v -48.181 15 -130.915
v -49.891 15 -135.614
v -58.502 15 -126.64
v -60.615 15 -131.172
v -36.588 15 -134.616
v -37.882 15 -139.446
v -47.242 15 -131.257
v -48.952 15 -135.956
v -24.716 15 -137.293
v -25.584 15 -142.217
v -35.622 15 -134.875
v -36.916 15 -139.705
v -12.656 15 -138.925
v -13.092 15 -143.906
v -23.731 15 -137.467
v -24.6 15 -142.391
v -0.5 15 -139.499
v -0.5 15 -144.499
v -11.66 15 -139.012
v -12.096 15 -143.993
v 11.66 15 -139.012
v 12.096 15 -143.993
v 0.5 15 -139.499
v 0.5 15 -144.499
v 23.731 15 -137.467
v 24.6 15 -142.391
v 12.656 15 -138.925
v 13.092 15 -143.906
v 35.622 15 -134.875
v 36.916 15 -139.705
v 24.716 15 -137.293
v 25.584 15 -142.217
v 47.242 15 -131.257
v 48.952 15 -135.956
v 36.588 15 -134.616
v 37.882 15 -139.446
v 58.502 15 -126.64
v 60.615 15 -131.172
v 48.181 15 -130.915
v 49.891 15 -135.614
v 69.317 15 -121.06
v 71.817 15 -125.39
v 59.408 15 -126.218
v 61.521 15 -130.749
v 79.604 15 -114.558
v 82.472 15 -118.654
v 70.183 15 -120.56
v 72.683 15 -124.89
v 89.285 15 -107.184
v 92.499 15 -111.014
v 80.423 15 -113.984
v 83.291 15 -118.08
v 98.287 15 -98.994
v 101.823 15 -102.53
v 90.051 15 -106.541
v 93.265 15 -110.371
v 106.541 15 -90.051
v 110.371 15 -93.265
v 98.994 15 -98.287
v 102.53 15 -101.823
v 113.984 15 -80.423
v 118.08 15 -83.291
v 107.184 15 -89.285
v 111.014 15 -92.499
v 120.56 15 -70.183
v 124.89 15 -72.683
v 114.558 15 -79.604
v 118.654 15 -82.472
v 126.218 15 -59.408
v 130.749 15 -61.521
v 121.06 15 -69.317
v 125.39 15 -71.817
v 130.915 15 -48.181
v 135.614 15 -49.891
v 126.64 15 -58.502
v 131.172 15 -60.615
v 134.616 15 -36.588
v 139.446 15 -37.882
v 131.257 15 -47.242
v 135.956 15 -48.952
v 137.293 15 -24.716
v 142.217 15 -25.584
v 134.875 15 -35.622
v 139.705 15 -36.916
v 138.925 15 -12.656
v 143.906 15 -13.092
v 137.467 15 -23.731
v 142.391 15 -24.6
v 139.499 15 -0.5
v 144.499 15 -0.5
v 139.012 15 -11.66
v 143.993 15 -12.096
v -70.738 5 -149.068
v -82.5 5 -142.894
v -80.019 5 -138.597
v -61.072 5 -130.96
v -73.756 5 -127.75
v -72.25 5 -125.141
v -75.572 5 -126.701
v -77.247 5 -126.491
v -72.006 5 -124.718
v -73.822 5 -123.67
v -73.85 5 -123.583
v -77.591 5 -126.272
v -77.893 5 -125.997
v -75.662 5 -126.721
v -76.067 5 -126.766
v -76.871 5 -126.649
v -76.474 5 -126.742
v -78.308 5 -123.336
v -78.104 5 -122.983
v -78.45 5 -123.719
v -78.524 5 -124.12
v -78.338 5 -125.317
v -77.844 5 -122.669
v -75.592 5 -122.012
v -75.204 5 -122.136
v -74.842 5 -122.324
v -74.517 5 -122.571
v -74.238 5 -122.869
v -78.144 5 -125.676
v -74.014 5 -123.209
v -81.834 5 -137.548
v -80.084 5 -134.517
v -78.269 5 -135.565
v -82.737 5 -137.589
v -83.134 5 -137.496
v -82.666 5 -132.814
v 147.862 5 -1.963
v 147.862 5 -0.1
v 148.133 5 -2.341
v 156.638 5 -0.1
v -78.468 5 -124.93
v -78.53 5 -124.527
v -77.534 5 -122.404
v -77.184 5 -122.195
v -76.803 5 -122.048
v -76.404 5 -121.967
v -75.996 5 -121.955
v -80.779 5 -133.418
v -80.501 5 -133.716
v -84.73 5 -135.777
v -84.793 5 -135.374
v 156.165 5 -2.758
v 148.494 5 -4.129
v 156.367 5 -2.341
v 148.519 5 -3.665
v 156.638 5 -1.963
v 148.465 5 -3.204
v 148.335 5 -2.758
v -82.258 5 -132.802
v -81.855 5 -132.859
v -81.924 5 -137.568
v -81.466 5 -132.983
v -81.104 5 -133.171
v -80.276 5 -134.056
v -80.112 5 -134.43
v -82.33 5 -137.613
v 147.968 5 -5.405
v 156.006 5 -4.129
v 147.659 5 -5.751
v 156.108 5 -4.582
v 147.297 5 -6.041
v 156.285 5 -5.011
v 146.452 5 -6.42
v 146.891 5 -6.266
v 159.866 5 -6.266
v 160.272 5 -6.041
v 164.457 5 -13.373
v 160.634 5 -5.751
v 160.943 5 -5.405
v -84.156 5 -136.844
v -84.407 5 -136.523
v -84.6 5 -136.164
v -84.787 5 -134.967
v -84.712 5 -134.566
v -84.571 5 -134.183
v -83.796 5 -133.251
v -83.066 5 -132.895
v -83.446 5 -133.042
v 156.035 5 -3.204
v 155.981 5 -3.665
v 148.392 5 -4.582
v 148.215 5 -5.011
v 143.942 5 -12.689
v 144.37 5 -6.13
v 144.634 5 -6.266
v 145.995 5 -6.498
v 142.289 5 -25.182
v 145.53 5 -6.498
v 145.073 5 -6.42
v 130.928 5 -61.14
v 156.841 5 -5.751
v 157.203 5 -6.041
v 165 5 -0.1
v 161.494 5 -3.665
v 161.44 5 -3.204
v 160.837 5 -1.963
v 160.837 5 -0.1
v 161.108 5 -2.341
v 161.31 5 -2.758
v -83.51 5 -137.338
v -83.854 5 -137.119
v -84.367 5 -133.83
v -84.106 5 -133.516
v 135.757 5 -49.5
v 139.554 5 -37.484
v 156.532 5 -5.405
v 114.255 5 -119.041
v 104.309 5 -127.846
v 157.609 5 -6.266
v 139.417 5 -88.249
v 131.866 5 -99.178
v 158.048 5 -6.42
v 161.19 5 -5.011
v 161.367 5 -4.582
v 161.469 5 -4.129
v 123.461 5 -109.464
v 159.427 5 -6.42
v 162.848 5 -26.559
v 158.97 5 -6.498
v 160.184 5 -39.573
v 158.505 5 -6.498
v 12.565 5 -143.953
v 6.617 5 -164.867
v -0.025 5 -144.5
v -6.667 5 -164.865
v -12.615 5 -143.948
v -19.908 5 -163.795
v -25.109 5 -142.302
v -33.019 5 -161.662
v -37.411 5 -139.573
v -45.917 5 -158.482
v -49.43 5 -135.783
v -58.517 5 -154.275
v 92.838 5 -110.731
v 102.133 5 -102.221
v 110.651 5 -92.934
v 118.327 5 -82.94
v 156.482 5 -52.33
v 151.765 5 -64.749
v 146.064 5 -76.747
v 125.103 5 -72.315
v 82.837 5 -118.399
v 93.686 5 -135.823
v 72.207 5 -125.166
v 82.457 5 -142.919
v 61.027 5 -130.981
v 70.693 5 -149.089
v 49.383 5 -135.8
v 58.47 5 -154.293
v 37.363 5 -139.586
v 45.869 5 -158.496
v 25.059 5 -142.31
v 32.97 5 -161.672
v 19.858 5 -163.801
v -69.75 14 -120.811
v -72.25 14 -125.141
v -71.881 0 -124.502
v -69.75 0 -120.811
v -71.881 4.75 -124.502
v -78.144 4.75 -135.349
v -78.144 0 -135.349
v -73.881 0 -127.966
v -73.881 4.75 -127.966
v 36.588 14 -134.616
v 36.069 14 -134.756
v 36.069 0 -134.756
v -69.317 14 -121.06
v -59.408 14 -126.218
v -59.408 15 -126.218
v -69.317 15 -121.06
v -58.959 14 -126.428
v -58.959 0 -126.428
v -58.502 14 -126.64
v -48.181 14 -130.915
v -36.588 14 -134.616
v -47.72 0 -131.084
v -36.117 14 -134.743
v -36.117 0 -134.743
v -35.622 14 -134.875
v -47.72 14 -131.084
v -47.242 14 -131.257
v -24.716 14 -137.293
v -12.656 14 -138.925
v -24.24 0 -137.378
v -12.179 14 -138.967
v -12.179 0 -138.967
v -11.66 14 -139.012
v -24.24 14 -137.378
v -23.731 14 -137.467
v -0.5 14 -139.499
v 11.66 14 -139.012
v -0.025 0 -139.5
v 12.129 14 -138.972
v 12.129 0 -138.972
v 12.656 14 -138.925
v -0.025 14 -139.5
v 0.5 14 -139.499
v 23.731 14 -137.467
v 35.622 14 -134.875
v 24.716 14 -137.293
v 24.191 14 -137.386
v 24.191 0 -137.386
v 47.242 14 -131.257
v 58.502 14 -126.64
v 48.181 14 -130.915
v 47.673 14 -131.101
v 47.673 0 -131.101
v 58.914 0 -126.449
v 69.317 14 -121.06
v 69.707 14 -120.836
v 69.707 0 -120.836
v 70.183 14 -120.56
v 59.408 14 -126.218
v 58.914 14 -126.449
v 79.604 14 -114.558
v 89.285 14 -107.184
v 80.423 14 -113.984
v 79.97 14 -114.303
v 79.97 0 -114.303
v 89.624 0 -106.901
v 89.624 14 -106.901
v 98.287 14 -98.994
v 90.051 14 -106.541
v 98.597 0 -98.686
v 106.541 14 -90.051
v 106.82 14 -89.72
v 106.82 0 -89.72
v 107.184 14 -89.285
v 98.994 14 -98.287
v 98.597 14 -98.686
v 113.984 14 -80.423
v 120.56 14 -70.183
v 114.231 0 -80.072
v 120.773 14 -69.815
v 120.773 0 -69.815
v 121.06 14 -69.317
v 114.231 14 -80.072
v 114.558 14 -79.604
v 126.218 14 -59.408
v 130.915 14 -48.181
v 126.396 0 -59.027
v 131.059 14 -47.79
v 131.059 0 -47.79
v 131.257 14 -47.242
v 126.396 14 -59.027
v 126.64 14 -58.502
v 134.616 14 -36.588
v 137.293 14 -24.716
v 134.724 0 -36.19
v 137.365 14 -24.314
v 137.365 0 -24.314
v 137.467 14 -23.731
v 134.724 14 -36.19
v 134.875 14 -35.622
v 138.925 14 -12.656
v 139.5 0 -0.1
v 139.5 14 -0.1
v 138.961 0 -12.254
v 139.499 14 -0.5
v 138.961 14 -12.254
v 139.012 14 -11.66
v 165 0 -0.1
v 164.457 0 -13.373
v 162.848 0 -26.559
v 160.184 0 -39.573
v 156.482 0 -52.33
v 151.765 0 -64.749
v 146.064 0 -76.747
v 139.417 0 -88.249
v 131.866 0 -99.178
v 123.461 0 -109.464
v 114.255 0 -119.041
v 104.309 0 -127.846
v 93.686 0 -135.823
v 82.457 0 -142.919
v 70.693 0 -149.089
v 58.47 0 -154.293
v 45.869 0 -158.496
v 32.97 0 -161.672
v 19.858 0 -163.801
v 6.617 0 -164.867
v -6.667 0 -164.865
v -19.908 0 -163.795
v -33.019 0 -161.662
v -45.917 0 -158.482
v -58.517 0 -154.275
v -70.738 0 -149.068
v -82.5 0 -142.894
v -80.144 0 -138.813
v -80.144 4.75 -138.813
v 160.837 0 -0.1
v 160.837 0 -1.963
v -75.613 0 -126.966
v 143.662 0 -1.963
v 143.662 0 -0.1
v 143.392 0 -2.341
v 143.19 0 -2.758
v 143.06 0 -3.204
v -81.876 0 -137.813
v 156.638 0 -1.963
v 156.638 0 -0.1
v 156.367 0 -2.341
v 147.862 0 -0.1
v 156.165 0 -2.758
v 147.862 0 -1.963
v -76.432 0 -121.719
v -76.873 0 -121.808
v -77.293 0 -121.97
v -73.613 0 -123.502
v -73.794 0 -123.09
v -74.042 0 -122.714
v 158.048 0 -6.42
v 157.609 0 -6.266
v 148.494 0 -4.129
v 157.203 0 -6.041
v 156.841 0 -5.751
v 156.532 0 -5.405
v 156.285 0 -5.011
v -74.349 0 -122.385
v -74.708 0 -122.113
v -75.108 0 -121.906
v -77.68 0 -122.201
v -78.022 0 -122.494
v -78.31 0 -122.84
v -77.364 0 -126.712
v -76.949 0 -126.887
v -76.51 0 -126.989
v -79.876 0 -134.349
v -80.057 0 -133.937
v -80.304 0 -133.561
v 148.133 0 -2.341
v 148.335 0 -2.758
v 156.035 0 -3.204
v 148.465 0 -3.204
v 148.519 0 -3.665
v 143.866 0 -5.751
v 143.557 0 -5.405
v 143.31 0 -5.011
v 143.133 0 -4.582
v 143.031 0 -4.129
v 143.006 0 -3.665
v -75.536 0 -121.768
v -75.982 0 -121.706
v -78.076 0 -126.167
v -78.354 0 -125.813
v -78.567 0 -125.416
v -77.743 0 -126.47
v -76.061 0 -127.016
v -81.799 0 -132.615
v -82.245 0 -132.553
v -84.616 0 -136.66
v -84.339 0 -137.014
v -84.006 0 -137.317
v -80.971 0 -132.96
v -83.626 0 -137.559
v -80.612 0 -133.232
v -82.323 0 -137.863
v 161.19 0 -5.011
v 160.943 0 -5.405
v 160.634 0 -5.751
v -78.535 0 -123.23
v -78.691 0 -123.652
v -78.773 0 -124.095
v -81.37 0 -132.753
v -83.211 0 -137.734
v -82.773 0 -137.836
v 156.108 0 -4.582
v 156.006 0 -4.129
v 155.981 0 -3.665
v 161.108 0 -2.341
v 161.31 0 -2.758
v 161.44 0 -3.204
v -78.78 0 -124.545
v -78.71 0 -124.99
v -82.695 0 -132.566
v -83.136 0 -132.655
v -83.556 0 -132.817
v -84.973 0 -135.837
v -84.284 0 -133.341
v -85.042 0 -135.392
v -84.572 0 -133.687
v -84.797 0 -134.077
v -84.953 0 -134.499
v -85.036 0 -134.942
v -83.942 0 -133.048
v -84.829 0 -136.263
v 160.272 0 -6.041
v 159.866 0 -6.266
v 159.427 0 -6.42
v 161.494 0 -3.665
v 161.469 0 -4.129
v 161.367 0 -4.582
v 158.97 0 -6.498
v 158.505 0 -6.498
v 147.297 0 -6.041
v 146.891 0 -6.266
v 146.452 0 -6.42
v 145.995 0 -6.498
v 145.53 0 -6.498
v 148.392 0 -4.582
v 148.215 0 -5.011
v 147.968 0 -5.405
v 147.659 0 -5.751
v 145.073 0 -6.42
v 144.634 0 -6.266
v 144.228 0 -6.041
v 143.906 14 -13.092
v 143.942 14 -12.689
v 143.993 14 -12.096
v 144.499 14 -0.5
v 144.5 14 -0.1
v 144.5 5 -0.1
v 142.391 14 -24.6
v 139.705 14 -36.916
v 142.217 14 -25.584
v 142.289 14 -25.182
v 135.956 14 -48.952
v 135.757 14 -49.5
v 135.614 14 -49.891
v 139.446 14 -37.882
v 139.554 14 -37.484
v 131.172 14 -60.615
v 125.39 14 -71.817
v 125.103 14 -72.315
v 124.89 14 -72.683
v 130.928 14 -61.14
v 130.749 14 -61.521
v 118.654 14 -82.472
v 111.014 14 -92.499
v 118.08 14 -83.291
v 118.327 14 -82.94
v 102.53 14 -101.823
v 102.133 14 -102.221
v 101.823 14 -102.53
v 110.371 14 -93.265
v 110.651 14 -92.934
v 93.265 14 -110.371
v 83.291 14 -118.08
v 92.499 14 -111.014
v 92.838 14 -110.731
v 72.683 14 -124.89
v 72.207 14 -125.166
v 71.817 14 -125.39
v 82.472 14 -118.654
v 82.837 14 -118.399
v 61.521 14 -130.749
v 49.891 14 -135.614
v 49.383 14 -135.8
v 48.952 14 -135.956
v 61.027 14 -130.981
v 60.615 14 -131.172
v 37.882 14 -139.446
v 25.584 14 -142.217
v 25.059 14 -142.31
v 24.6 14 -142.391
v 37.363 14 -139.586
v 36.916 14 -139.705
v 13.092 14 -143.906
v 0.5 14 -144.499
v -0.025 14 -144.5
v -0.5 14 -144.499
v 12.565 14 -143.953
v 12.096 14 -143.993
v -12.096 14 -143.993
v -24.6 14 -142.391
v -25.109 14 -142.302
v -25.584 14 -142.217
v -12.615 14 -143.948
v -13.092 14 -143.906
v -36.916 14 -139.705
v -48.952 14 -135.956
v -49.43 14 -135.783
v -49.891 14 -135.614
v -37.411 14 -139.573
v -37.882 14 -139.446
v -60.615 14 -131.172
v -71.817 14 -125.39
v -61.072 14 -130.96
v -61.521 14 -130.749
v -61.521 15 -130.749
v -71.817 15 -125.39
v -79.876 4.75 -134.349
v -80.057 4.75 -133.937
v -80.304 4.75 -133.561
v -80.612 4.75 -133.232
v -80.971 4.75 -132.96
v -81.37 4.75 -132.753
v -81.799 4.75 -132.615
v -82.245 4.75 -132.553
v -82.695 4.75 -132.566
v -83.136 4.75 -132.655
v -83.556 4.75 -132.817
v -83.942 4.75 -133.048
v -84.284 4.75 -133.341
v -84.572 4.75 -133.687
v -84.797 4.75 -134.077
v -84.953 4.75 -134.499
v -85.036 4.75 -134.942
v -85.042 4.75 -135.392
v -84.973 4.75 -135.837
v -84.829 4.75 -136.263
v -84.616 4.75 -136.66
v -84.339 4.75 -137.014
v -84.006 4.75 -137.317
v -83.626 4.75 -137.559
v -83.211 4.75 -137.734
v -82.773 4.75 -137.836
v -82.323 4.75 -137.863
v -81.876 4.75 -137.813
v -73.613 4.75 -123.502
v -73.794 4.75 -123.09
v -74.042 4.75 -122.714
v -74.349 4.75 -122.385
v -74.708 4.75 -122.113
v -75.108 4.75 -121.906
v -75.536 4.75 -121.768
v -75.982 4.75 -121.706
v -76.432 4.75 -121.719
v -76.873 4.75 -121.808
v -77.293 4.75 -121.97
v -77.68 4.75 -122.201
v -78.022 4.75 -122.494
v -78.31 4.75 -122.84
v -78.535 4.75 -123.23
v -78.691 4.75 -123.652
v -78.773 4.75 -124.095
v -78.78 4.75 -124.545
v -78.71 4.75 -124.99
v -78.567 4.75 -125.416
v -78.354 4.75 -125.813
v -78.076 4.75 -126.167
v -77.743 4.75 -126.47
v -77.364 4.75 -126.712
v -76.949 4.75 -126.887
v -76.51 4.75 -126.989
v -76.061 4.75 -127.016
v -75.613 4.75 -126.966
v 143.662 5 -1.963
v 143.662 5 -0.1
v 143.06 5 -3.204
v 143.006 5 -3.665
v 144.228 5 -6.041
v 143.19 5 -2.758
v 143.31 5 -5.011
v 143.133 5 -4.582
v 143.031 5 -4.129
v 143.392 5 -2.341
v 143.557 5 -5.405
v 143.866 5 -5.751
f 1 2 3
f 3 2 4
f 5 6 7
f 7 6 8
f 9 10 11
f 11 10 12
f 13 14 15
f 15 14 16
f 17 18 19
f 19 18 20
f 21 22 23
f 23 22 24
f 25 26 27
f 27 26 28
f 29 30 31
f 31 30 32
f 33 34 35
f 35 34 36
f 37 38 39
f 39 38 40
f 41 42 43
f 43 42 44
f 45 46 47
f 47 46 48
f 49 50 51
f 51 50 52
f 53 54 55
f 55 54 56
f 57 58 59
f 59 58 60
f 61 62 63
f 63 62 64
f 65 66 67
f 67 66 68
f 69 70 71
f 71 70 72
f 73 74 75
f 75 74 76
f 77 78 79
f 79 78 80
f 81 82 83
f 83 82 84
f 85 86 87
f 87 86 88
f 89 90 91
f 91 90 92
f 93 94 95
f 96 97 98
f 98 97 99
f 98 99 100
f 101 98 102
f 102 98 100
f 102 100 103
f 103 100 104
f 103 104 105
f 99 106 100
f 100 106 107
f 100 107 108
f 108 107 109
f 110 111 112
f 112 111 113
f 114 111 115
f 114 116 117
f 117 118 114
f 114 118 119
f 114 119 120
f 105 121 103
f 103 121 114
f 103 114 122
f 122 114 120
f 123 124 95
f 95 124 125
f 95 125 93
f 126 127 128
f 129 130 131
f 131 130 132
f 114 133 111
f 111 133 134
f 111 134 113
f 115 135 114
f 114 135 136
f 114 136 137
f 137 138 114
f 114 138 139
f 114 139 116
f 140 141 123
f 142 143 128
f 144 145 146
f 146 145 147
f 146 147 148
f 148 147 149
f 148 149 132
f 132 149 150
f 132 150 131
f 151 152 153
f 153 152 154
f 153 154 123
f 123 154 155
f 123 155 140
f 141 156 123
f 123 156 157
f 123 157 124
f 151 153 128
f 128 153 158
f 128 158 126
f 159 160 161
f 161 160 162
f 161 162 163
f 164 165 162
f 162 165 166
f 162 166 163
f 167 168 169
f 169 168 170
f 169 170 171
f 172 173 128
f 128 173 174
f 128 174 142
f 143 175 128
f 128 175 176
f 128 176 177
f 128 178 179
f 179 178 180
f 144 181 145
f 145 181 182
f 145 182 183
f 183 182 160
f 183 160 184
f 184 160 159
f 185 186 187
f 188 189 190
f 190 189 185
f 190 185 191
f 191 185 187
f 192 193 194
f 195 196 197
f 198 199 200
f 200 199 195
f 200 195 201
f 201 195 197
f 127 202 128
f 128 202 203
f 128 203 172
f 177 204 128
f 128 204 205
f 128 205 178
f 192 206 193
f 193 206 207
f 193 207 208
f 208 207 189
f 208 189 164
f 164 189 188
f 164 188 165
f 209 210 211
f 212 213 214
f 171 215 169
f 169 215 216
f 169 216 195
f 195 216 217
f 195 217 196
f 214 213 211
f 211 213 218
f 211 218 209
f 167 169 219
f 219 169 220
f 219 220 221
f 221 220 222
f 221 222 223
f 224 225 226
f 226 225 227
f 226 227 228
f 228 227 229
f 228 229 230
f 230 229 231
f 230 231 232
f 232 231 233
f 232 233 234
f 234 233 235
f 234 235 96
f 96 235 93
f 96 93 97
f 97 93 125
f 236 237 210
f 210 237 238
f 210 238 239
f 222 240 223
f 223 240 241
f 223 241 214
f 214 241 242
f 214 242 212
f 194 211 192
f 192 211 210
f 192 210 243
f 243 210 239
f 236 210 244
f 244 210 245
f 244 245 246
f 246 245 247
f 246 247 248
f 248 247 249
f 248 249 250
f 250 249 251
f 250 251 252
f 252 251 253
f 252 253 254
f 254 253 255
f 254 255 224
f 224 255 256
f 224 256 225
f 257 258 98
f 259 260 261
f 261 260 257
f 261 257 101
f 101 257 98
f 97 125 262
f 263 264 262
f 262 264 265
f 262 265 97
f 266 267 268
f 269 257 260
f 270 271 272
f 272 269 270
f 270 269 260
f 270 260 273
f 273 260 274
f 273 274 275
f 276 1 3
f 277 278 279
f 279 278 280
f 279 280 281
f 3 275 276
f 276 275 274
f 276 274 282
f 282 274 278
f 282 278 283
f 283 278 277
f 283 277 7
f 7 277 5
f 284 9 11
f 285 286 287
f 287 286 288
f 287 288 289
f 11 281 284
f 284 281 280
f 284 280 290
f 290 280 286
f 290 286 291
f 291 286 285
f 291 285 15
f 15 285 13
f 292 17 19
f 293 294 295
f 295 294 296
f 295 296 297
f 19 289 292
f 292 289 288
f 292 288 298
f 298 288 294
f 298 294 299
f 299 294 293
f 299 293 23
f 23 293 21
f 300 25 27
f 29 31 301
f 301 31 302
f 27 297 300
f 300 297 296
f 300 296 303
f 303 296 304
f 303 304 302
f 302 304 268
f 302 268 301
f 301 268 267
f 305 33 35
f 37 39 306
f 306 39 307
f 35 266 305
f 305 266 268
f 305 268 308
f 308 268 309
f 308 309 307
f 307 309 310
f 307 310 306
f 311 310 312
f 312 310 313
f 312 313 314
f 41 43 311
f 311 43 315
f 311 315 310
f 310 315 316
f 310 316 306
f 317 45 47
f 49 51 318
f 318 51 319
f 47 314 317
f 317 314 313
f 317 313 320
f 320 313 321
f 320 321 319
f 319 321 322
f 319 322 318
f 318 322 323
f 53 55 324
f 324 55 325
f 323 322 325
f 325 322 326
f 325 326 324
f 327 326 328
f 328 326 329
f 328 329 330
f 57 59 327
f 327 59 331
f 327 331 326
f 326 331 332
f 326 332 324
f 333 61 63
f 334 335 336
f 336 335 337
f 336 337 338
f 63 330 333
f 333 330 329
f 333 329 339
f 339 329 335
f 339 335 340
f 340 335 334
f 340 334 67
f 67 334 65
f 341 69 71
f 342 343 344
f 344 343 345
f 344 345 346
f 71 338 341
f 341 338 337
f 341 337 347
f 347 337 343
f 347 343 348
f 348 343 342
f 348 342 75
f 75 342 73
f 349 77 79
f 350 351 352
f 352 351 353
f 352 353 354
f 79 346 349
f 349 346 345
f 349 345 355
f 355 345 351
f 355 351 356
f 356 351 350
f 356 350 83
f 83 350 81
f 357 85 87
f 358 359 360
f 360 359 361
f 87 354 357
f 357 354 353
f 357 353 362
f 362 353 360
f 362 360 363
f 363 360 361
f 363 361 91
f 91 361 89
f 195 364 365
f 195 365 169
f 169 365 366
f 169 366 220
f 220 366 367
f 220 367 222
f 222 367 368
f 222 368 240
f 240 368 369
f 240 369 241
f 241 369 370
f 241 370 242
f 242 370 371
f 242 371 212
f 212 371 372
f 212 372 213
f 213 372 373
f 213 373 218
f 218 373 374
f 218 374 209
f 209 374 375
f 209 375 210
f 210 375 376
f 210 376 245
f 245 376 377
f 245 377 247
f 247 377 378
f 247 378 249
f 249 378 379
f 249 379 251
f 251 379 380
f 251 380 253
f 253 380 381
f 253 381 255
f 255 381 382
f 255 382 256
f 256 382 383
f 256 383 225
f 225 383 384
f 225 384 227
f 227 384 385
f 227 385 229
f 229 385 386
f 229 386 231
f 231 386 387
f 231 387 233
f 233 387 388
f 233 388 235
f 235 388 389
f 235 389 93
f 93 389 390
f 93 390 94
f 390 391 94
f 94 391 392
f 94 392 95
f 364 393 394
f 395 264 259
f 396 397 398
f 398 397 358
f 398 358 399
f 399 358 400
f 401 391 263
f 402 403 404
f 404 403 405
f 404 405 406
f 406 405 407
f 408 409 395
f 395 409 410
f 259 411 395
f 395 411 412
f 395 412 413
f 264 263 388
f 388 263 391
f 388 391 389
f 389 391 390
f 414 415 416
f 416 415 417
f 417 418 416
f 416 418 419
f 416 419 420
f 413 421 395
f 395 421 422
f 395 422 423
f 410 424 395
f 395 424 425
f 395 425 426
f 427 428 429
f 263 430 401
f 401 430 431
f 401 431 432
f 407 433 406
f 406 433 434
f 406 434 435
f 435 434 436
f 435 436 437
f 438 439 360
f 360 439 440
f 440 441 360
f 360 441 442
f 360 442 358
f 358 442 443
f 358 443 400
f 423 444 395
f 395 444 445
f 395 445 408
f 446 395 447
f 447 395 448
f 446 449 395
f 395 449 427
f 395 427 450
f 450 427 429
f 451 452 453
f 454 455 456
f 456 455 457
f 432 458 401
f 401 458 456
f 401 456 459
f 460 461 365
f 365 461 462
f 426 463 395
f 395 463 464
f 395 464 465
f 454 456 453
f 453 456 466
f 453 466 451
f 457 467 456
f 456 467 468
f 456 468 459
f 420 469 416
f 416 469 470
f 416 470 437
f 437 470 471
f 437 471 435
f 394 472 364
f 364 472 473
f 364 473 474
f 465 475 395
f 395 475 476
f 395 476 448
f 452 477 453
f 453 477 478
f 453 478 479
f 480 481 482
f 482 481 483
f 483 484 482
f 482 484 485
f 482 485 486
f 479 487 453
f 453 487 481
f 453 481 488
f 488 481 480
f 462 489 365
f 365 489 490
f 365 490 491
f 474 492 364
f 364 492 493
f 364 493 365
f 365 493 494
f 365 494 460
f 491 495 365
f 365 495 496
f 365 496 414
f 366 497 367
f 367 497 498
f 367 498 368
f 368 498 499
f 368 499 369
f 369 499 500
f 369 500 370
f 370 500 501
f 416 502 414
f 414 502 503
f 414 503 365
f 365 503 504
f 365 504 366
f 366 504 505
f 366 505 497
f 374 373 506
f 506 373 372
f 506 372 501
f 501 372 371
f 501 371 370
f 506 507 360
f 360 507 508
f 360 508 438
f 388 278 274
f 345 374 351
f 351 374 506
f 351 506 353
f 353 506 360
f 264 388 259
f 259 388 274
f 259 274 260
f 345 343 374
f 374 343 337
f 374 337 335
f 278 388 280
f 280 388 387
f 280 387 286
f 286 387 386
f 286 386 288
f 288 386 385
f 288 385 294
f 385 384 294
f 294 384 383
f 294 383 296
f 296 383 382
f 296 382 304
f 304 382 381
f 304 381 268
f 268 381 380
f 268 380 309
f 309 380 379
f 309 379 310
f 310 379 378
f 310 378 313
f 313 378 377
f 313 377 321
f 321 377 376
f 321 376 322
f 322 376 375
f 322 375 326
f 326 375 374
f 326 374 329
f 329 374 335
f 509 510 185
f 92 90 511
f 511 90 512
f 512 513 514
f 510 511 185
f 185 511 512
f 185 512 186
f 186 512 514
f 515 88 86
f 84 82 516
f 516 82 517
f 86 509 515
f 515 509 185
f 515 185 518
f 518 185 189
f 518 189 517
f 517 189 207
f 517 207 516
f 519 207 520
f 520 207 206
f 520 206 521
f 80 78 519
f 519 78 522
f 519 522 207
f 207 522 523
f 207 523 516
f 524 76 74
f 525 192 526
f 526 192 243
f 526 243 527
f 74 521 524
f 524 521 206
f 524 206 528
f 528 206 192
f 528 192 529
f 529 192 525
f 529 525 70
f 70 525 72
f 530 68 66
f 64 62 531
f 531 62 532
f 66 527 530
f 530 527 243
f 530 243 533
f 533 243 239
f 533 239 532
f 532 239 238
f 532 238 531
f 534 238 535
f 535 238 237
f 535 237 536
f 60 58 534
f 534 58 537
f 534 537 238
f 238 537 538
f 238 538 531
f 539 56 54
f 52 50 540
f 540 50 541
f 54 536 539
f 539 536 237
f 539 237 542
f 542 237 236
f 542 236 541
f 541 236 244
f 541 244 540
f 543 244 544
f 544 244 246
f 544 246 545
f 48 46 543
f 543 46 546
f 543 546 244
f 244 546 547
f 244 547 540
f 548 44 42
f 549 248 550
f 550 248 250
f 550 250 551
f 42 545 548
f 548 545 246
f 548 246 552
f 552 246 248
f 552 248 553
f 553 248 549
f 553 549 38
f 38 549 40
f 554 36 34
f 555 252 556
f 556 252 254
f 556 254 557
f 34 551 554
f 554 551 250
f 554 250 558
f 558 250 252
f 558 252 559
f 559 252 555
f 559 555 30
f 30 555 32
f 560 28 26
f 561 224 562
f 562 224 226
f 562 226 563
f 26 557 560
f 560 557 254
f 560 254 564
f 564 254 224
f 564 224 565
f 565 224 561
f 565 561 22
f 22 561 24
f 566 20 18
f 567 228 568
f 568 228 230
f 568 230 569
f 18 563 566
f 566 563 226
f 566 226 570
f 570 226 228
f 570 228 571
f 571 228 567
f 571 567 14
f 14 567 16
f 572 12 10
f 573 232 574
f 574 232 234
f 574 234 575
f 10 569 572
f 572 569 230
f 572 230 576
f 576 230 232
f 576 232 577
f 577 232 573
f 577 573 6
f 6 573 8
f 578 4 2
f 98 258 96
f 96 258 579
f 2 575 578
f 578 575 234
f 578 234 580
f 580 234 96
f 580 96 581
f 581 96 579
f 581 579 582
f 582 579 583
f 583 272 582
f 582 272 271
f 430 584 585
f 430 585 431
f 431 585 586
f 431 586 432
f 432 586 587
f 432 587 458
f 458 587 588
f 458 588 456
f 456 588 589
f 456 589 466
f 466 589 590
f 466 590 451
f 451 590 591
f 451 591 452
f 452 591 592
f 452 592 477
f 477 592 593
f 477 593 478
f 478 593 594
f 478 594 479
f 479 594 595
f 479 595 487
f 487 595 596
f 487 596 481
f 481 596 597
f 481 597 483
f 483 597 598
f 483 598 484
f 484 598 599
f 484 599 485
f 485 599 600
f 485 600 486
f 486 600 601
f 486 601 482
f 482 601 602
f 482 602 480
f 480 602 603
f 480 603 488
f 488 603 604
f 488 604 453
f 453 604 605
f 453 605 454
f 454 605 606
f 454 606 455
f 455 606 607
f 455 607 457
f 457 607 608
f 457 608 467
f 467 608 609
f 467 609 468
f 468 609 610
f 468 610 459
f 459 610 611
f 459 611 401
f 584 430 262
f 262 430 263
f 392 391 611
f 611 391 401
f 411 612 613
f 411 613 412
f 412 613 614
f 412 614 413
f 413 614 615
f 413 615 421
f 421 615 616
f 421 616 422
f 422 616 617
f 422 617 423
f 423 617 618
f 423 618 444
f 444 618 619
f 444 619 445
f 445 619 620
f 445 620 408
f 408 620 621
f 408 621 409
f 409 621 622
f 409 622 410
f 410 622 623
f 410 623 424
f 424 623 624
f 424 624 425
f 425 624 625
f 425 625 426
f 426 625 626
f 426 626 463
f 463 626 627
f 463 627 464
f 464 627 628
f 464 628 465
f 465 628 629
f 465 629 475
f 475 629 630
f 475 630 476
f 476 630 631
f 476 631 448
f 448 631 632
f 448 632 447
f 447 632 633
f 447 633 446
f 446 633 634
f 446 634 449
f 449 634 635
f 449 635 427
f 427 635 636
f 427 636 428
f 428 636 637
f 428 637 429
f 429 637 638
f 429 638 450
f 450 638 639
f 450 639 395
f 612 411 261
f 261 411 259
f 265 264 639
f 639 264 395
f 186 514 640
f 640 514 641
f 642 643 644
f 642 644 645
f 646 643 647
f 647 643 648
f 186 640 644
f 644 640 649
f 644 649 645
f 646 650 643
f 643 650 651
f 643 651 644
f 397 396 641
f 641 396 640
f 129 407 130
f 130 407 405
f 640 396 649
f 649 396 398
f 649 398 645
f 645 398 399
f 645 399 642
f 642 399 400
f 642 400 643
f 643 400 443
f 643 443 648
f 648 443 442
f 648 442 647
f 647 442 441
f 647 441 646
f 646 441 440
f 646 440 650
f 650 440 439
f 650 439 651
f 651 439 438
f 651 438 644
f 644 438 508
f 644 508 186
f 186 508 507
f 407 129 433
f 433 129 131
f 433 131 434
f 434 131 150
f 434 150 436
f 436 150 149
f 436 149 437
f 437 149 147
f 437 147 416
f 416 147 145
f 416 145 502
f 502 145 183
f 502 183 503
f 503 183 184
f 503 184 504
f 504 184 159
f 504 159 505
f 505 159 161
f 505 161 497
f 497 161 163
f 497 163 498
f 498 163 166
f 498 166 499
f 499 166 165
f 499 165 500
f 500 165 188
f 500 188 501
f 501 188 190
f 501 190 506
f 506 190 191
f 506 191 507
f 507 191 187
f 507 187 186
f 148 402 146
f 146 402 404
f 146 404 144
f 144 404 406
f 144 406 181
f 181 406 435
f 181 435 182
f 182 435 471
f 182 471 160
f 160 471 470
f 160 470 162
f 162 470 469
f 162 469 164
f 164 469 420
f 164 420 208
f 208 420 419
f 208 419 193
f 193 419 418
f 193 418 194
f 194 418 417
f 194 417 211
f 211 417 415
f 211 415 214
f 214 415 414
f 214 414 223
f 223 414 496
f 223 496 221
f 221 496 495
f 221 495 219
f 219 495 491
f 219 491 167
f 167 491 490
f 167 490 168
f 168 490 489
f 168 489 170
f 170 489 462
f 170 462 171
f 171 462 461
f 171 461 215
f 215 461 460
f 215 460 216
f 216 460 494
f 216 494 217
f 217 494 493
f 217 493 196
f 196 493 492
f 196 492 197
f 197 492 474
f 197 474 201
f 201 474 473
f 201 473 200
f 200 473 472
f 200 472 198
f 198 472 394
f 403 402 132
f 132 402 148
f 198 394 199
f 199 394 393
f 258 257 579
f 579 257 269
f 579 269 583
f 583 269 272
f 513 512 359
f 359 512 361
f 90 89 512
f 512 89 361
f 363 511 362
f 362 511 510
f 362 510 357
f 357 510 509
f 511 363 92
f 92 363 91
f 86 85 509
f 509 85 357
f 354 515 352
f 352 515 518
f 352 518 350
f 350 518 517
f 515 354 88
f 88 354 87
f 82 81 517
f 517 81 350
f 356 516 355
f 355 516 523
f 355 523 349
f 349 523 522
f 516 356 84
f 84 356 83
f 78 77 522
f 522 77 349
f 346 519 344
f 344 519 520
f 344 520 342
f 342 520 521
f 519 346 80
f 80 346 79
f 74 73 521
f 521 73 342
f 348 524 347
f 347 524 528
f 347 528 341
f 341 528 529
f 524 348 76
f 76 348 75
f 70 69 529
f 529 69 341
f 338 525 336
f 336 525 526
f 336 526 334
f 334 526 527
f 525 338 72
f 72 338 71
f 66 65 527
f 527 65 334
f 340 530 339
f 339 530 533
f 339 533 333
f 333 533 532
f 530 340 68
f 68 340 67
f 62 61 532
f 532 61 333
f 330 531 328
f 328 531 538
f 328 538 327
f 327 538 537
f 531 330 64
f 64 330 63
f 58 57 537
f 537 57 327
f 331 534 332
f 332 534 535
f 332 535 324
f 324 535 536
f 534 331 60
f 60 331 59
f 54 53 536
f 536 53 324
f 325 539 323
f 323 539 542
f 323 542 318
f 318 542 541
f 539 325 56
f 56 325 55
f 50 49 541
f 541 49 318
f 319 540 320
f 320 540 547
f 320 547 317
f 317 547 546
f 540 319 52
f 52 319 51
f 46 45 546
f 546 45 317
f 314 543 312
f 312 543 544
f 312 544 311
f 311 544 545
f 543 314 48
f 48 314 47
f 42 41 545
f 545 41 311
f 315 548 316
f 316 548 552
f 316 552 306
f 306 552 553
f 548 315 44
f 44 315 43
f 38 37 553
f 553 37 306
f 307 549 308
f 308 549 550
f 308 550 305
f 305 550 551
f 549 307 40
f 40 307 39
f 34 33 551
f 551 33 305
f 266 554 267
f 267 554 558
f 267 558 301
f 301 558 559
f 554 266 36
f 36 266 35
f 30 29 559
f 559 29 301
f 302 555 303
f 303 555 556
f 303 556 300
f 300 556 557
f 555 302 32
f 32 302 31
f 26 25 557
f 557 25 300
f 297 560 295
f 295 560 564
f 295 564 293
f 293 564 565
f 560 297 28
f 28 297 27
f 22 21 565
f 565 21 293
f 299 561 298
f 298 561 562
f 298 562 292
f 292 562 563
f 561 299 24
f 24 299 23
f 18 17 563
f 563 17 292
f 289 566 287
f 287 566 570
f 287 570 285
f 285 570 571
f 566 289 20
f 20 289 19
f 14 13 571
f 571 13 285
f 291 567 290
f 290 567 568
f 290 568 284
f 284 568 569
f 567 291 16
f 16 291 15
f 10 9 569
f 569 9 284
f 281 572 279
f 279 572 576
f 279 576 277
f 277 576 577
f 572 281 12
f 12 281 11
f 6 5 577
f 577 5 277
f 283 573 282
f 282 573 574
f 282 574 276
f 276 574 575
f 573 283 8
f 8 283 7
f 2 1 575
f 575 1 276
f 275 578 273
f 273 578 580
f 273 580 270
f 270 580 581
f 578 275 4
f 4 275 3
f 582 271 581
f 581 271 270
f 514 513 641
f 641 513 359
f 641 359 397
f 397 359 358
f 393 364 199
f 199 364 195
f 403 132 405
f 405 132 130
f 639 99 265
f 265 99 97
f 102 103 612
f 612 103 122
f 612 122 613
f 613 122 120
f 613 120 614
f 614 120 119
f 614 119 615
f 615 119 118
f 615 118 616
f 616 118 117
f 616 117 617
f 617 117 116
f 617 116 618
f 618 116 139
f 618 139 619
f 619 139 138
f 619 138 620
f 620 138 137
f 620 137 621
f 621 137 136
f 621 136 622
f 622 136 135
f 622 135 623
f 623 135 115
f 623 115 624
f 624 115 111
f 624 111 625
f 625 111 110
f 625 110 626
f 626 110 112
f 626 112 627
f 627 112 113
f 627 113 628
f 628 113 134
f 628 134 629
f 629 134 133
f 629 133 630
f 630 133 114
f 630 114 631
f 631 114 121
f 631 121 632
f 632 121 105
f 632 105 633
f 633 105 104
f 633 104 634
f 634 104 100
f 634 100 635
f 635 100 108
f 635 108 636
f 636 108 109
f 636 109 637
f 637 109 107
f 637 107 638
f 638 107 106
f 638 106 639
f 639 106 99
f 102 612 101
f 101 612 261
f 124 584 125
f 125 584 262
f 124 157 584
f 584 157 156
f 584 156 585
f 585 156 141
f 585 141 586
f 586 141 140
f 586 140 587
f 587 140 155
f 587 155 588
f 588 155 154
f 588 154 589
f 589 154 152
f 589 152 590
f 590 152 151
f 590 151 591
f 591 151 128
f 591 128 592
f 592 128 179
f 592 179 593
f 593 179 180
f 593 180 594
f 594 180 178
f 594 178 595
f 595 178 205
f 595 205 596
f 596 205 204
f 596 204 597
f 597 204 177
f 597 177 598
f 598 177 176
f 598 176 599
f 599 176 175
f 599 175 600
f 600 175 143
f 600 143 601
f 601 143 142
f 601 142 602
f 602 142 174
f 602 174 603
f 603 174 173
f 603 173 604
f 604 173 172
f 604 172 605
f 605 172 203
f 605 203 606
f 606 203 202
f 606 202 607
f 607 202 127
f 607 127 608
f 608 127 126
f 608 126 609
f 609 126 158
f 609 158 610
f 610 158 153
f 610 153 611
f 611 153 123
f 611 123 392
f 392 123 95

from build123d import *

# Parameters (mm, degrees)
BOSS_EXTRUDE1_DEPTH = 5
BOSS_EXTRUDE2_DEPTH = 10
BOSS_EXTRUDE3_DEPTH = 5
CUT_EXTRUDE1_DEPTH  = 5
CUT_EXTRUDE2_DEPTH  = 1
CIRPATTERN1_COUNT   = 25
CIRPATTERN1_ANGLE   = 120
CUT_EXTRUDE3_DEPTH  = 16
CHAMFER1_SIZE       = 0.25


with BuildPart() as part:
    # Sketch1 → Boss-Extrude1 (new body)
    with BuildSketch(Plane(origin=(0, 0, 0), x_dir=(1, 0, 0), z_dir=(0, 1, 0))):
        with BuildLine():
            Line((-69.75, 120.810543828), (-82.5, 142.894191624))
            ThreePointArc((-82.5, 142.894191624), (82.5, 142.894191624), (165, 0))
            Line((165, 0), (139.5, 0))
            ThreePointArc((139.5, 0), (69.75, 120.810543828), (-69.75, 120.810543828))
        make_face()
    extrude(amount=BOSS_EXTRUDE1_DEPTH)

    # Sketch2 → Boss-Extrude2 (add)
    with BuildSketch(Plane(origin=(0, 5, 0), x_dir=(1, 0, 0), z_dir=(0, 1, 0))):
        with BuildLine():
            Line((-72.25, 125.140670847), (-69.75, 120.810543828))
            ThreePointArc((-69.75, 120.810543828), (69.75, 120.810543828), (139.5, 0))
            Line((139.5, 0), (144.5, 0))
            ThreePointArc((144.5, 0), (72.25, 125.140670847), (-72.25, 125.140670847))
        make_face()
    extrude(amount=BOSS_EXTRUDE2_DEPTH)

    # Sketch3 → Boss-Extrude3 (add)
    with BuildSketch(Plane(origin=(0, 5, 0), x_dir=(1, 0, 0), z_dir=(0, 1, 0))):
        with BuildLine():
            Line((-71.88125, 124.501977112), (-73.88125, 127.966078727))
            Line((-73.88125, 127.966078727), (-75.613300808, 126.966078727))
            ThreePointArc((-75.613300808, 126.966078727), (-78.430339344, 123.030259693), (-73.613300808, 123.501977112))
            Line((-73.613300808, 123.501977112), (-71.88125, 124.501977112))
        make_face()
        with BuildLine():
            Line((-78.14375, 135.348945294), (-80.14375, 138.813046909))
            Line((-80.14375, 138.813046909), (-81.875800808, 137.813046909))
            ThreePointArc((-81.875800808, 137.813046909), (-84.692839344, 133.877227875), (-79.875800808, 134.348945294))
            Line((-79.875800808, 134.348945294), (-78.14375, 135.348945294))
        make_face()
    extrude(amount=-BOSS_EXTRUDE3_DEPTH)

    # Sketch4 → Cut-Extrude1 (cut)
    with BuildSketch(Plane(origin=(0, 0, 0), x_dir=(1, 0, 0), z_dir=(0, 1, 0))):
        with BuildLine():
            Line((156.6375, 1.962821416), (156.6375, 0))
            Line((156.6375, 0), (160.8375, 0))
            Line((160.8375, 0), (160.8375, 1.962821416))
            ThreePointArc((160.8375, 1.962821416), (158.7375, 6.507536453), (156.6375, 1.962821416))
        make_face()
        with BuildLine():
            Line((143.6625, 1.962821416), (143.6625, 0))
            Line((143.6625, 0), (147.8625, 0))
            Line((147.8625, 0), (147.8625, 1.962821416))
            ThreePointArc((147.8625, 1.962821416), (145.7625, 6.507536453), (143.6625, 1.962821416))
        make_face()
    extrude(amount=CUT_EXTRUDE1_DEPTH, mode=Mode.SUBTRACT)

    # Sketch5 → Cut-Extrude2 (cut)
    with BuildSketch(Plane(origin=(0, 15, 0), x_dir=(1, 0, 0), z_dir=(0, 1, 0))):
        Polygon((-72.659271704, 126.849550232), (-68.346968319, 119.380421672), (-69.212993723, 118.880421672), (-73.606467483, 126.490141447), align=None)
    cut_extrude2 = extrude(amount=-CUT_EXTRUDE2_DEPTH, mode=Mode.SUBTRACT)

    # CirPattern1: Cut-Extrude2 ×25 about axis
    cirpattern1_axis = Axis((0, 0, 0), (0, -1, 0))
    for i in range(1, CIRPATTERN1_COUNT):
        add(cut_extrude2.rotate(cirpattern1_axis, i * CIRPATTERN1_ANGLE / (CIRPATTERN1_COUNT - 1)), mode=Mode.SUBTRACT)

    # Sketch6 → Cut-Extrude3 (cut, through all)
    with BuildSketch(Plane(origin=(0, 15, 0), x_dir=(1, 0, 0), z_dir=(0, 1, 0))):
        Polygon((134.134253662, 0), (167.805161023, 0), (167.805161023, 0.1), (133.91215317, 0.1), align=None)
    extrude(amount=-CUT_EXTRUDE3_DEPTH, mode=Mode.SUBTRACT)

    # Chamfer1
    chamfer1_edges = [part.edges().sort_by_distance(p)[0] for p in [
        (-81.009775404, 5, -138.313046909),
        (-84.692839344, 5, -133.877227875),
        (-79.009775404, 5, -134.848945294),
        (-74.747275404, 5, -127.466078727),
        (-78.430339344, 5, -123.030259693),
        (-72.747275404, 5, -124.001977112),
    ]]
    chamfer(chamfer1_edges, length=CHAMFER1_SIZE)


solid = part.part
